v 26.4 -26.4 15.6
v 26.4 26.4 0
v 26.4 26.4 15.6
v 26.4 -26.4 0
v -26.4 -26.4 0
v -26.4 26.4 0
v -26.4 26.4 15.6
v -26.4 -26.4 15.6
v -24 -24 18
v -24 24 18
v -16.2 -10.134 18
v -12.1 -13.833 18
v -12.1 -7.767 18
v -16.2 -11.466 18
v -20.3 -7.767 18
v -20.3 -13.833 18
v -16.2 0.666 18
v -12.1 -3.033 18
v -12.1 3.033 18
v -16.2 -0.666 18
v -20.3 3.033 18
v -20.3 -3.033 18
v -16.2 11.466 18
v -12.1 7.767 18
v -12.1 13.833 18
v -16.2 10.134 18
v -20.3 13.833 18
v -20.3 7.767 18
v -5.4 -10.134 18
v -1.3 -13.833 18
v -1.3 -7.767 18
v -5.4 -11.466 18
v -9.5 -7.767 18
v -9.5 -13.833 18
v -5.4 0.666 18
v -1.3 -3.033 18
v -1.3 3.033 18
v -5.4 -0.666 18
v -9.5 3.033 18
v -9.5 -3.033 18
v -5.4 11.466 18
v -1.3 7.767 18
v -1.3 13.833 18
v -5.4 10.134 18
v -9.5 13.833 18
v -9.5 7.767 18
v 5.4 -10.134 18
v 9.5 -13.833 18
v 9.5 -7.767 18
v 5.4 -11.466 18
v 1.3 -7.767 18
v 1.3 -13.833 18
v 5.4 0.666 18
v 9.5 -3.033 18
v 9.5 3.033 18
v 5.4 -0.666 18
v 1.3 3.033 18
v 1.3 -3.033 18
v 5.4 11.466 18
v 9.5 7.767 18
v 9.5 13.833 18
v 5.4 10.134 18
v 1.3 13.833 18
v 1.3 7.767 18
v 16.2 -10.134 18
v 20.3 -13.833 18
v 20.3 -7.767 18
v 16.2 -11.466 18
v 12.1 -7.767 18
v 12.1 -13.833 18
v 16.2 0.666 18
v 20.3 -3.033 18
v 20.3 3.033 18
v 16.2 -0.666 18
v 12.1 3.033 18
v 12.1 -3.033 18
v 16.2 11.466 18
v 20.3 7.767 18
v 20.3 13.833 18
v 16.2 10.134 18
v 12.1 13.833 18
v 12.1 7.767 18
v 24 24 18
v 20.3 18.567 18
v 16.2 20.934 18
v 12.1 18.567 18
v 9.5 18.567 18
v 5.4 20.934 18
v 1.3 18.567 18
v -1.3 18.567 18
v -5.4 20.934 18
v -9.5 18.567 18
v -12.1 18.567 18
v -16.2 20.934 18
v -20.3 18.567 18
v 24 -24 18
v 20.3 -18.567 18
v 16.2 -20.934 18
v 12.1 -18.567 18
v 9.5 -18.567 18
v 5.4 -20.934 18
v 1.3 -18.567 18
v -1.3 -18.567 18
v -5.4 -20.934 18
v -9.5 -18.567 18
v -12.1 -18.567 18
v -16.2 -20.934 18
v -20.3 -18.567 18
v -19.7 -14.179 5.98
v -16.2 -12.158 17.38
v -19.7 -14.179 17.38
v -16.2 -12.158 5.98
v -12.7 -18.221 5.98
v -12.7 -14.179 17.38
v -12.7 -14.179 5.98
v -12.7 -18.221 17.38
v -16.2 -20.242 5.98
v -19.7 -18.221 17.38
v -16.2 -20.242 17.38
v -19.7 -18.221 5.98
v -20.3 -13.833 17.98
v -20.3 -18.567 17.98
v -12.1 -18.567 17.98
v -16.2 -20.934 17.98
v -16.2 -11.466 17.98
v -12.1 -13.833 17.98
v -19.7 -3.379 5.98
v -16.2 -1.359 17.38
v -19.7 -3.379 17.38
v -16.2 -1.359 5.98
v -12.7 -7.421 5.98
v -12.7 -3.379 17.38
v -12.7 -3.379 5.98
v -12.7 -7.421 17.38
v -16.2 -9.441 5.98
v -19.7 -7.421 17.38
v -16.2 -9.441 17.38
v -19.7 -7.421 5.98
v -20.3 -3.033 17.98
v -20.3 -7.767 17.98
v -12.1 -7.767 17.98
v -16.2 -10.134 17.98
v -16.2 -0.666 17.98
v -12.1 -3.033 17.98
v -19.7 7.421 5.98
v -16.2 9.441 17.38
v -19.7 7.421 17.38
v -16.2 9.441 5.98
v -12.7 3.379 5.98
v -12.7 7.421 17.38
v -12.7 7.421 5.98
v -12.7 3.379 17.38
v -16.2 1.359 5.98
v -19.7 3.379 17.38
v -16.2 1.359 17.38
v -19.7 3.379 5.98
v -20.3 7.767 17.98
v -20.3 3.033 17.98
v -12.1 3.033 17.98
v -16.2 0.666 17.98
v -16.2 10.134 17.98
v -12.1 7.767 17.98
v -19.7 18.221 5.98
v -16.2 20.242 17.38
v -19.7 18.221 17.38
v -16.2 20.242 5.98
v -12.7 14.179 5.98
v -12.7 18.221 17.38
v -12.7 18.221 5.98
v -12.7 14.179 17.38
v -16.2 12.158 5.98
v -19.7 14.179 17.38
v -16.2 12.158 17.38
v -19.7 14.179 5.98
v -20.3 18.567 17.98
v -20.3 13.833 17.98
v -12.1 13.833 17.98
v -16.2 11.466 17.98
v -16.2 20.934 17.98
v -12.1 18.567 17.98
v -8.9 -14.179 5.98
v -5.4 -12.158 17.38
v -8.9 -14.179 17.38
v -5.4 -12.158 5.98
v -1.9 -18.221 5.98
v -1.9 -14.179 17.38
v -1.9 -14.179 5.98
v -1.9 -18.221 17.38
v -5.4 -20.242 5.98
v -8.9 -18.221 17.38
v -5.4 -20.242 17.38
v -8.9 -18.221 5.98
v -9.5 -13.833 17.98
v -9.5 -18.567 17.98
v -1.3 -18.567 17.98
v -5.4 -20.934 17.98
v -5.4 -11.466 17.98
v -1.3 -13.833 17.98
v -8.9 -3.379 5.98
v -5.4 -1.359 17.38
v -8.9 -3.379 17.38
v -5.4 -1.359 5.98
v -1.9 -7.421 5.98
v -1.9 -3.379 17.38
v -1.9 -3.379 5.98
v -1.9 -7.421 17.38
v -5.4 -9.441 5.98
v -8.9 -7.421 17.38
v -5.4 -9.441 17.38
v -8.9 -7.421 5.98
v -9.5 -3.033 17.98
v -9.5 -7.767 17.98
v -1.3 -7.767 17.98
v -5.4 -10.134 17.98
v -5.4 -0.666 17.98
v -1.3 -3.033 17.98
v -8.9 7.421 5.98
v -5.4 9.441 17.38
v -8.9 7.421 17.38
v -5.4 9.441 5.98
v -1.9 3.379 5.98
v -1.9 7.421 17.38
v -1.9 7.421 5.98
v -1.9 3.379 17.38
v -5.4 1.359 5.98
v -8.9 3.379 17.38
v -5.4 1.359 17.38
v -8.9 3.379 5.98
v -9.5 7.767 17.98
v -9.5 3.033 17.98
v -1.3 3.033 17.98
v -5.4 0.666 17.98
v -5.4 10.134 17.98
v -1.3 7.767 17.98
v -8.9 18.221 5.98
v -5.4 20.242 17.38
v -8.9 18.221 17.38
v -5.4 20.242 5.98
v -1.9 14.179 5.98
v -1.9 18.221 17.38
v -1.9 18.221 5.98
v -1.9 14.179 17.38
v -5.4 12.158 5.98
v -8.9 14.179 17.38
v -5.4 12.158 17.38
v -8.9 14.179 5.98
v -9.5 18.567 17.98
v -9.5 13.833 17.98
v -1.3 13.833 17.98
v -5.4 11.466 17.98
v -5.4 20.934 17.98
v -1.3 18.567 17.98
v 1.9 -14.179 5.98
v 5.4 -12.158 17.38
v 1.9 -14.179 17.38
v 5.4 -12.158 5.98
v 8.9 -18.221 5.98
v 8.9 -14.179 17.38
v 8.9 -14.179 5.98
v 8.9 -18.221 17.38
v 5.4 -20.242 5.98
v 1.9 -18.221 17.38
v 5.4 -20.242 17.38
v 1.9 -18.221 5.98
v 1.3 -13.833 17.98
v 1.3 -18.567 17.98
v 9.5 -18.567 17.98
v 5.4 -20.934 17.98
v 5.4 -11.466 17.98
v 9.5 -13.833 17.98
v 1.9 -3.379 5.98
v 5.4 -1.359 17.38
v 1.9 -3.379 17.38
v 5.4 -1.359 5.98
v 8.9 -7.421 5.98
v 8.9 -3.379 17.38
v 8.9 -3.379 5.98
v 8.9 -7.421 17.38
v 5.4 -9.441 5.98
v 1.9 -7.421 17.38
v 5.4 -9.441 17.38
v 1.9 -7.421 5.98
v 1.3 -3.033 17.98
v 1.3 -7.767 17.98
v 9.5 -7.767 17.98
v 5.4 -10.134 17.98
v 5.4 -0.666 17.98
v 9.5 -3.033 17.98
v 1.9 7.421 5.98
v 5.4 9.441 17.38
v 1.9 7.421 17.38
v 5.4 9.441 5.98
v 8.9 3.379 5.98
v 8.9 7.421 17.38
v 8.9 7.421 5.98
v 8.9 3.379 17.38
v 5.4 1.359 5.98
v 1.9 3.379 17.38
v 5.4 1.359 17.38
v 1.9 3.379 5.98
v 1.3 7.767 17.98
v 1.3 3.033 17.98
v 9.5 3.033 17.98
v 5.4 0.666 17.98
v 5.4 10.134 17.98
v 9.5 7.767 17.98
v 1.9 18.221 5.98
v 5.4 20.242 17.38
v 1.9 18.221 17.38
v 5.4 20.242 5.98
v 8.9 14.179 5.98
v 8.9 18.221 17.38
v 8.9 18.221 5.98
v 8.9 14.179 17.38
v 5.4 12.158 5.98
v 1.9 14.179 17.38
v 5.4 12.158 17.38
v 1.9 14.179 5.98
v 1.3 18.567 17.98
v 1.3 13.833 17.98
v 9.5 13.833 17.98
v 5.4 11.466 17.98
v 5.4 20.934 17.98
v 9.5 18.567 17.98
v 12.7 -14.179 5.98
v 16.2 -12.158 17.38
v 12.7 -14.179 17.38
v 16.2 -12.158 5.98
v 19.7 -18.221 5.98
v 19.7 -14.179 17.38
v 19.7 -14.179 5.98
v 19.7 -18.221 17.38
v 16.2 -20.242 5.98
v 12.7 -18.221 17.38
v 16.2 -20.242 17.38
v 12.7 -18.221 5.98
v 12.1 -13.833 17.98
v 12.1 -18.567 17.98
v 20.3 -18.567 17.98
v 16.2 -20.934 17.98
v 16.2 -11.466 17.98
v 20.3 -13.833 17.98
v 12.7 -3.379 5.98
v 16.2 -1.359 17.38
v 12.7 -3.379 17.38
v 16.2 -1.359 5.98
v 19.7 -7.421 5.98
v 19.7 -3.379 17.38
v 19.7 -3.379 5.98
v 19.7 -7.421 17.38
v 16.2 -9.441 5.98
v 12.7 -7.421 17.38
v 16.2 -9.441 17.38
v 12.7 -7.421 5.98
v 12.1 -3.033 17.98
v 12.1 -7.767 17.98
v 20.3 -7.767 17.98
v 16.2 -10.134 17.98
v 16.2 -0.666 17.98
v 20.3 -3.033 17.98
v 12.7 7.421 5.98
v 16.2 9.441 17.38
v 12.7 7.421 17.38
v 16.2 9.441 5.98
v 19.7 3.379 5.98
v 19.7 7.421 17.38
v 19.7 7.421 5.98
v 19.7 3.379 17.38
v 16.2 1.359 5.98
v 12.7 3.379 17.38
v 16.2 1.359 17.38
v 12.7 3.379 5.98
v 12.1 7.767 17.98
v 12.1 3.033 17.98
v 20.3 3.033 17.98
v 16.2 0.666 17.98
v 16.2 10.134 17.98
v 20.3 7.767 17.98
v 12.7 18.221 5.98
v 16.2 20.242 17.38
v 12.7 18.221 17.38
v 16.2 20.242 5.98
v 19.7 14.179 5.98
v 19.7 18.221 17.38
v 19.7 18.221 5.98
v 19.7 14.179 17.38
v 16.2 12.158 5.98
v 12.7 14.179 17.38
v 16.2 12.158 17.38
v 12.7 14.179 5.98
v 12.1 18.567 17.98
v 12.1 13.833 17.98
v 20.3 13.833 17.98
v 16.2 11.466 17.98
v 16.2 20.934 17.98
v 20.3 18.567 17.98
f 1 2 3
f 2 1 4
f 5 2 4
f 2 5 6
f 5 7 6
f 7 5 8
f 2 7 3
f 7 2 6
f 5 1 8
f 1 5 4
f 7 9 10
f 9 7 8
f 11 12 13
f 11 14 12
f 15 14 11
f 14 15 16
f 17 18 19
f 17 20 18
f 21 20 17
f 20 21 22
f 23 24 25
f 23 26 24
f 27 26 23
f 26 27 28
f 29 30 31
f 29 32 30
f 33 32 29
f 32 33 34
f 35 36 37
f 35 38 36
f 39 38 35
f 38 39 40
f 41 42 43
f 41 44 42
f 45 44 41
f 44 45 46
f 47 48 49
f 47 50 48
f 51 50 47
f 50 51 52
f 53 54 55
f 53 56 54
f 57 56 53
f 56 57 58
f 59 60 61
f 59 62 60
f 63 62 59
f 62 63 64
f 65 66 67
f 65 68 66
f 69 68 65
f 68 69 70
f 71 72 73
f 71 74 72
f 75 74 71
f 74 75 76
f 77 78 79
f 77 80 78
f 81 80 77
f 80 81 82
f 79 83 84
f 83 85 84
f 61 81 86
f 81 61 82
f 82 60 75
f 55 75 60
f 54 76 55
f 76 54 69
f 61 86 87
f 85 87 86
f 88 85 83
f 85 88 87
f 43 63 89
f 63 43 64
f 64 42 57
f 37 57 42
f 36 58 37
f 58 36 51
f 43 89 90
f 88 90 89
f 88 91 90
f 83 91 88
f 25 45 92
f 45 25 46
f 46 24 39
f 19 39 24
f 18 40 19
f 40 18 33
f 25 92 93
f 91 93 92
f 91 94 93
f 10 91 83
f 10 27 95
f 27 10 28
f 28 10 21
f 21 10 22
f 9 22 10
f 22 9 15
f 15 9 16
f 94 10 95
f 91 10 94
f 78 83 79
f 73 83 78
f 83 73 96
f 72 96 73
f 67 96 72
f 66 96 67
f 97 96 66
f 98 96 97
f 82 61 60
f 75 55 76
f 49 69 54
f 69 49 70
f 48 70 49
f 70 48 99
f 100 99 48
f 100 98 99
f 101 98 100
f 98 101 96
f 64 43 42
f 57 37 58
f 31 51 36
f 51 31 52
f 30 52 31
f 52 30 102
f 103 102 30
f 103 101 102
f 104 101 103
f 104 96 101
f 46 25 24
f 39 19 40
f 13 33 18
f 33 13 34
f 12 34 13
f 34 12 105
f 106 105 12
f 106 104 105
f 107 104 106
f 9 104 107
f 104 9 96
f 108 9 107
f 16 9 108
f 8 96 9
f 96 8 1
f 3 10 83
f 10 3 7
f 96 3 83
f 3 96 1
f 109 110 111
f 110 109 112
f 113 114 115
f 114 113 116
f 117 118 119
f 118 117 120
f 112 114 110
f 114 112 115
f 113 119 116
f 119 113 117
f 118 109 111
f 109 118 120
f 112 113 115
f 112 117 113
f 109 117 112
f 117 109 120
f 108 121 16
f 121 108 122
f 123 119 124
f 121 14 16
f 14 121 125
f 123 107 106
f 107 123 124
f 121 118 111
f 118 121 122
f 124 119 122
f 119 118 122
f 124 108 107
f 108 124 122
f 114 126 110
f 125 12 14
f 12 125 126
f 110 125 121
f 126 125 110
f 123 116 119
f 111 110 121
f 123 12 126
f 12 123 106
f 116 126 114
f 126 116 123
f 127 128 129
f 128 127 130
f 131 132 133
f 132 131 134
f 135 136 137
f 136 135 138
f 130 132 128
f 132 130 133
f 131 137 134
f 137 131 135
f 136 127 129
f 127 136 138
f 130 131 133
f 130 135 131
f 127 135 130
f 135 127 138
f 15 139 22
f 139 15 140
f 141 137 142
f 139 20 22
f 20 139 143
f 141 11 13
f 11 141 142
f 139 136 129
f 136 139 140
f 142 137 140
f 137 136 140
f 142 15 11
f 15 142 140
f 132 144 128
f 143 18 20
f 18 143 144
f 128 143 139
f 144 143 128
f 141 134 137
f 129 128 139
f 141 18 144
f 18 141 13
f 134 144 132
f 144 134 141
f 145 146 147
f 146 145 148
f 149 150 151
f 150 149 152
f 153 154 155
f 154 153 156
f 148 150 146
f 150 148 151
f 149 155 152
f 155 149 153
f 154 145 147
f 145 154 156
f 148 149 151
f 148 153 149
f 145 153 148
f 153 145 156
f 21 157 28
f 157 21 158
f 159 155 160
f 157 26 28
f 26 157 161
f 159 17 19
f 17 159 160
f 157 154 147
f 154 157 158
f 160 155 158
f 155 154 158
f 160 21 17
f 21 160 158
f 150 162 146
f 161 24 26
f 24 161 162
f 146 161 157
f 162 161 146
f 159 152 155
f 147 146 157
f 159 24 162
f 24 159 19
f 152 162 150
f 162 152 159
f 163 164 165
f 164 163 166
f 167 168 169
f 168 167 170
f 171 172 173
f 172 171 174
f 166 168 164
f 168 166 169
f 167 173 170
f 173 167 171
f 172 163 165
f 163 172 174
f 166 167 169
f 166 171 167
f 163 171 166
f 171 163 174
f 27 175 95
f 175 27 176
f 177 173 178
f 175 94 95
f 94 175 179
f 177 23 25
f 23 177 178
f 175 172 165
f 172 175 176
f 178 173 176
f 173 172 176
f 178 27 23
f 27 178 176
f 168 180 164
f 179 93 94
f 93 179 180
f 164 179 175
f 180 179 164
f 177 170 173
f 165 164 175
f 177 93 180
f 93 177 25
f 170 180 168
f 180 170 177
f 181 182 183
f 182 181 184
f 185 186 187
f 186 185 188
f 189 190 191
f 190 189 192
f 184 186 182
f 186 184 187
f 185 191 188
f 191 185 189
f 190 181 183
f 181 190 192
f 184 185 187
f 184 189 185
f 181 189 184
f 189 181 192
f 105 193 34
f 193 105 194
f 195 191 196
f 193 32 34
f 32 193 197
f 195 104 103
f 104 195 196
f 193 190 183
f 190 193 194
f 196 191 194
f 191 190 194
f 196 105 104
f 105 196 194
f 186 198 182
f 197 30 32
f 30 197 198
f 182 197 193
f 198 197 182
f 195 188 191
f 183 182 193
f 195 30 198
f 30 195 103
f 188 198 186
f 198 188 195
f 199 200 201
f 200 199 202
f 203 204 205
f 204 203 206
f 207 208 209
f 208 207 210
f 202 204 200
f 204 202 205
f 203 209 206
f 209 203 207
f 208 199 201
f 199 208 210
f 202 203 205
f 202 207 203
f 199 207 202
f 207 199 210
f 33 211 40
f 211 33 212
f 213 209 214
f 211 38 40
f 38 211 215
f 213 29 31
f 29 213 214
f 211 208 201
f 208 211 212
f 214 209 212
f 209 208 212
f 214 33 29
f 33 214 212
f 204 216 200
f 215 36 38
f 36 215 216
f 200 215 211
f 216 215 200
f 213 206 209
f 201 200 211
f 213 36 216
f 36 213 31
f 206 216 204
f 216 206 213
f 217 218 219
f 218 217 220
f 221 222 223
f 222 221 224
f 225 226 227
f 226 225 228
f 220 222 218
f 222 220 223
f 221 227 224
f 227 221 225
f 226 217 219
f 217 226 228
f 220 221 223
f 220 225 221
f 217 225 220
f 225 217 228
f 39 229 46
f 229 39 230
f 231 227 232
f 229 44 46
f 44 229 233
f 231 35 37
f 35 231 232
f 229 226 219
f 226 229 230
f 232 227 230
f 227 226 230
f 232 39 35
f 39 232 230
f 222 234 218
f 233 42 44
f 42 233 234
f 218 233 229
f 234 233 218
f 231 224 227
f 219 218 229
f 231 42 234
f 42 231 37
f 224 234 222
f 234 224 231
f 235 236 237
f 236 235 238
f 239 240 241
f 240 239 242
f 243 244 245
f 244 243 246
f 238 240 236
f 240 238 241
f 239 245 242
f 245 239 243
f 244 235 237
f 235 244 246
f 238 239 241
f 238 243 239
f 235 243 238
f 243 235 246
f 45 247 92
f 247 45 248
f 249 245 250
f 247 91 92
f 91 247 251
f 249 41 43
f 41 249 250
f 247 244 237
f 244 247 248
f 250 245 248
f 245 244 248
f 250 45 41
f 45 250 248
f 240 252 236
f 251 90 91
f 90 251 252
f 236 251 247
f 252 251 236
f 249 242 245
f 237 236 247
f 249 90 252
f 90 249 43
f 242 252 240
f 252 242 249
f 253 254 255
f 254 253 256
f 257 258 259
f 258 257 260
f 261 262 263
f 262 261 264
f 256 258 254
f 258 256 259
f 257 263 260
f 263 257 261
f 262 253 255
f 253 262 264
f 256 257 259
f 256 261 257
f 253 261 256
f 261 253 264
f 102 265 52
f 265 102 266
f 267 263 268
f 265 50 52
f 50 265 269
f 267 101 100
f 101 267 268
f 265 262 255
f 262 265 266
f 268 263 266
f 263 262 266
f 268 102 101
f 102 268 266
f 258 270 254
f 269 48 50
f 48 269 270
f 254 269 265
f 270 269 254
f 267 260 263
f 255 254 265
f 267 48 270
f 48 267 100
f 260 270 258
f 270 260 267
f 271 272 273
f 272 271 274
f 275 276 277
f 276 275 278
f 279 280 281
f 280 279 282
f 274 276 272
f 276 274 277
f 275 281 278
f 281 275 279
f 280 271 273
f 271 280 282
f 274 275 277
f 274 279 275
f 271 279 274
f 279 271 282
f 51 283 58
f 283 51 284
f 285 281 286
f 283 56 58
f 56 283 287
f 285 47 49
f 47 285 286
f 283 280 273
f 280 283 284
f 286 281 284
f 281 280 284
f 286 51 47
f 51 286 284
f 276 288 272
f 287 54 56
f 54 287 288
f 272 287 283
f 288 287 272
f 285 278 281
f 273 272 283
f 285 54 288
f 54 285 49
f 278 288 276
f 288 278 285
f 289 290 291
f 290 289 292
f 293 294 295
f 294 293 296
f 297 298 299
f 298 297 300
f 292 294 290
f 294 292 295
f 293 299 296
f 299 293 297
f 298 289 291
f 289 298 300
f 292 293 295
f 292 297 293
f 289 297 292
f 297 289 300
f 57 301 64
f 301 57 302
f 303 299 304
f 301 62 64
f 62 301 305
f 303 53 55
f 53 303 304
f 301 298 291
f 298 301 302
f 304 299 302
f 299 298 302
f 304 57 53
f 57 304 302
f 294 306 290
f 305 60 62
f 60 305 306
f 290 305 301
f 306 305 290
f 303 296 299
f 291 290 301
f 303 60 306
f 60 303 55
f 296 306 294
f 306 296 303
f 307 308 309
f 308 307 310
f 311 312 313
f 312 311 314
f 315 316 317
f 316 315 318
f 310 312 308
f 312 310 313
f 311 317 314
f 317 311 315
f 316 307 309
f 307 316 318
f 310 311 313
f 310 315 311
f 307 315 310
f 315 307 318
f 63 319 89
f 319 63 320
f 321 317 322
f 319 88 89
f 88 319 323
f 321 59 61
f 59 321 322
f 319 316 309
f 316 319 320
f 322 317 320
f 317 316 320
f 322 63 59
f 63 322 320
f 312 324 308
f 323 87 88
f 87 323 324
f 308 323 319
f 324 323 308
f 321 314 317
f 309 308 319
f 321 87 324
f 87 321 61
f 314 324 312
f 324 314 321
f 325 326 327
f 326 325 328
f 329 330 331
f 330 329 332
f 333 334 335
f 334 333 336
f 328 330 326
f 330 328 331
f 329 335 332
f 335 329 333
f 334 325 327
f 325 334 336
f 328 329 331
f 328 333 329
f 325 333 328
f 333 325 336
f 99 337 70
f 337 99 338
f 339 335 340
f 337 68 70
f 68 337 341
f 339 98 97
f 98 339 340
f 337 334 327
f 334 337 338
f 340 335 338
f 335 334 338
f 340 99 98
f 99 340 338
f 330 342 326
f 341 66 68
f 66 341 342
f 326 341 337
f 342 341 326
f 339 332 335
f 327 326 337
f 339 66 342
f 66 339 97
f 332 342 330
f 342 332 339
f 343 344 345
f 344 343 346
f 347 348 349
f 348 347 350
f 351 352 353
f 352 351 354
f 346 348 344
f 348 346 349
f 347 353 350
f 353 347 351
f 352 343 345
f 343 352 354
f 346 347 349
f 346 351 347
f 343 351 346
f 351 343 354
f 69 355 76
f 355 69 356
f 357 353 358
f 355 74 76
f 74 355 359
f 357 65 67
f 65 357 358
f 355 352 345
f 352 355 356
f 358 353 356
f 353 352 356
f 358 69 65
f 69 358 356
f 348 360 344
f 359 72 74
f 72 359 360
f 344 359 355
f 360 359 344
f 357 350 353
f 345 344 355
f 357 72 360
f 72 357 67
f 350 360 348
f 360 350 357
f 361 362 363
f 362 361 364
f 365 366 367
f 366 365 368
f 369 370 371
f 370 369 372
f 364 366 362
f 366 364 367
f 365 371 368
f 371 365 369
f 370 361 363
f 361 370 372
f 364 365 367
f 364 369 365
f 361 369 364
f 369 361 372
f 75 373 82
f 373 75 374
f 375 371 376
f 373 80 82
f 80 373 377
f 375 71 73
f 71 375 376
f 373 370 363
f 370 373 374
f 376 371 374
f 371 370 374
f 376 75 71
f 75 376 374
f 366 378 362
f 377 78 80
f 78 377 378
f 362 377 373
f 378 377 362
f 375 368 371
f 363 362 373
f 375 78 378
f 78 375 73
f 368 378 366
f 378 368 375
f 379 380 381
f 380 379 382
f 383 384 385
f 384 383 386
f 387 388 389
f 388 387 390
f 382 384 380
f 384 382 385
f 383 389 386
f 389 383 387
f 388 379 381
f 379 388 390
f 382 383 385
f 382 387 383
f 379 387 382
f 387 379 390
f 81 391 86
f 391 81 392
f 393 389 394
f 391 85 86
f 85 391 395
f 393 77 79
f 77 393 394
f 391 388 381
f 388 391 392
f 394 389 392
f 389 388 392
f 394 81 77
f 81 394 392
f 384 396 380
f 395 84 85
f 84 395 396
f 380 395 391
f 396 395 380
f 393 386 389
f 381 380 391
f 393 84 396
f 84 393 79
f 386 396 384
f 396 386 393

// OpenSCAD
// 16-bit hex driver stand
// Designed for 0.6 mm nozzle printing with no supports.
// Units: millimetres

$fn = 48;

// ---------- User parameters ----------
columns = 4;
rows = 4;

hex_flat_to_flat = 7.0;       // straight pocket section
pocket_depth = 12.0;
pocket_mouth_chamfer_h = 0.6;
pocket_mouth_flat_to_flat = 8.2;

pitch_x = 10.8;               // 18 nozzle widths @ 0.6 mm
pitch_y = 10.8;

body_x = 52.8;                // 88 nozzle widths
body_y = 52.8;
body_h = 18.0;
outer_top_chamfer = 2.4;      // 4 nozzle widths; 45 degree

// ---------- Derived values ----------
hex_r = hex_flat_to_flat / sqrt(3);              // circumradius
mouth_hex_r = pocket_mouth_flat_to_flat / sqrt(3);

module hex_prism(r, h) {
    // Rotate 30 degrees so the named dimension is flat-to-flat on X/Y.
    linear_extrude(height = h)
        rotate(30)
            circle(r = r, $fn = 6);
}

module top_chamfered_block(x, y, h, c) {
    assert(c > 0 && c < h, "outer_top_chamfer must be > 0 and < body_h");
    assert(2*c < min(x, y), "outer_top_chamfer too large for body footprint");

    union() {
        // Straight lower body.
        translate([-x/2, -y/2, 0])
            cube([x, y, h-c]);

        // 45-degree top-edge chamfer.
        hull() {
            translate([-x/2, -y/2, h-c-0.02])
                cube([x, y, 0.02]);
            translate([-(x-2*c)/2, -(y-2*c)/2, h-0.02])
                cube([x-2*c, y-2*c, 0.02]);
        }
    }
}

module bit_pocket() {
    // Main 7.0 mm AF pocket. Extend slightly upward to avoid coplanar artifacts.
    translate([0, 0, body_h - pocket_depth - 0.02])
        hex_prism(hex_r, pocket_depth - pocket_mouth_chamfer_h + 0.04);

    // 0.6 mm tall lead-in taper. The functional pocket below remains 7.0 mm AF.
    hull() {
        translate([0, 0, body_h - pocket_mouth_chamfer_h - 0.02])
            hex_prism(hex_r, 0.02);
        translate([0, 0, body_h - 0.02])
            hex_prism(mouth_hex_r, 0.04);
    }
}

module stand() {
    difference() {
        top_chamfered_block(body_x, body_y, body_h, outer_top_chamfer);

        for (ix = [0 : columns-1])
            for (iy = [0 : rows-1]) {
                x = (ix - (columns-1)/2) * pitch_x;
                y = (iy - (rows-1)/2) * pitch_y;
                translate([x, y, 0])
                    bit_pocket();
            }
    }
}

// Basic sanity checks.
assert(columns * rows >= 12, "Stand must hold at least 12 bits");
assert(body_h > pocket_depth, "Pocket depth must leave a closed floor");
assert(pocket_mouth_flat_to_flat >= hex_flat_to_flat,
       "Pocket mouth must not be smaller than the straight pocket");

stand();
